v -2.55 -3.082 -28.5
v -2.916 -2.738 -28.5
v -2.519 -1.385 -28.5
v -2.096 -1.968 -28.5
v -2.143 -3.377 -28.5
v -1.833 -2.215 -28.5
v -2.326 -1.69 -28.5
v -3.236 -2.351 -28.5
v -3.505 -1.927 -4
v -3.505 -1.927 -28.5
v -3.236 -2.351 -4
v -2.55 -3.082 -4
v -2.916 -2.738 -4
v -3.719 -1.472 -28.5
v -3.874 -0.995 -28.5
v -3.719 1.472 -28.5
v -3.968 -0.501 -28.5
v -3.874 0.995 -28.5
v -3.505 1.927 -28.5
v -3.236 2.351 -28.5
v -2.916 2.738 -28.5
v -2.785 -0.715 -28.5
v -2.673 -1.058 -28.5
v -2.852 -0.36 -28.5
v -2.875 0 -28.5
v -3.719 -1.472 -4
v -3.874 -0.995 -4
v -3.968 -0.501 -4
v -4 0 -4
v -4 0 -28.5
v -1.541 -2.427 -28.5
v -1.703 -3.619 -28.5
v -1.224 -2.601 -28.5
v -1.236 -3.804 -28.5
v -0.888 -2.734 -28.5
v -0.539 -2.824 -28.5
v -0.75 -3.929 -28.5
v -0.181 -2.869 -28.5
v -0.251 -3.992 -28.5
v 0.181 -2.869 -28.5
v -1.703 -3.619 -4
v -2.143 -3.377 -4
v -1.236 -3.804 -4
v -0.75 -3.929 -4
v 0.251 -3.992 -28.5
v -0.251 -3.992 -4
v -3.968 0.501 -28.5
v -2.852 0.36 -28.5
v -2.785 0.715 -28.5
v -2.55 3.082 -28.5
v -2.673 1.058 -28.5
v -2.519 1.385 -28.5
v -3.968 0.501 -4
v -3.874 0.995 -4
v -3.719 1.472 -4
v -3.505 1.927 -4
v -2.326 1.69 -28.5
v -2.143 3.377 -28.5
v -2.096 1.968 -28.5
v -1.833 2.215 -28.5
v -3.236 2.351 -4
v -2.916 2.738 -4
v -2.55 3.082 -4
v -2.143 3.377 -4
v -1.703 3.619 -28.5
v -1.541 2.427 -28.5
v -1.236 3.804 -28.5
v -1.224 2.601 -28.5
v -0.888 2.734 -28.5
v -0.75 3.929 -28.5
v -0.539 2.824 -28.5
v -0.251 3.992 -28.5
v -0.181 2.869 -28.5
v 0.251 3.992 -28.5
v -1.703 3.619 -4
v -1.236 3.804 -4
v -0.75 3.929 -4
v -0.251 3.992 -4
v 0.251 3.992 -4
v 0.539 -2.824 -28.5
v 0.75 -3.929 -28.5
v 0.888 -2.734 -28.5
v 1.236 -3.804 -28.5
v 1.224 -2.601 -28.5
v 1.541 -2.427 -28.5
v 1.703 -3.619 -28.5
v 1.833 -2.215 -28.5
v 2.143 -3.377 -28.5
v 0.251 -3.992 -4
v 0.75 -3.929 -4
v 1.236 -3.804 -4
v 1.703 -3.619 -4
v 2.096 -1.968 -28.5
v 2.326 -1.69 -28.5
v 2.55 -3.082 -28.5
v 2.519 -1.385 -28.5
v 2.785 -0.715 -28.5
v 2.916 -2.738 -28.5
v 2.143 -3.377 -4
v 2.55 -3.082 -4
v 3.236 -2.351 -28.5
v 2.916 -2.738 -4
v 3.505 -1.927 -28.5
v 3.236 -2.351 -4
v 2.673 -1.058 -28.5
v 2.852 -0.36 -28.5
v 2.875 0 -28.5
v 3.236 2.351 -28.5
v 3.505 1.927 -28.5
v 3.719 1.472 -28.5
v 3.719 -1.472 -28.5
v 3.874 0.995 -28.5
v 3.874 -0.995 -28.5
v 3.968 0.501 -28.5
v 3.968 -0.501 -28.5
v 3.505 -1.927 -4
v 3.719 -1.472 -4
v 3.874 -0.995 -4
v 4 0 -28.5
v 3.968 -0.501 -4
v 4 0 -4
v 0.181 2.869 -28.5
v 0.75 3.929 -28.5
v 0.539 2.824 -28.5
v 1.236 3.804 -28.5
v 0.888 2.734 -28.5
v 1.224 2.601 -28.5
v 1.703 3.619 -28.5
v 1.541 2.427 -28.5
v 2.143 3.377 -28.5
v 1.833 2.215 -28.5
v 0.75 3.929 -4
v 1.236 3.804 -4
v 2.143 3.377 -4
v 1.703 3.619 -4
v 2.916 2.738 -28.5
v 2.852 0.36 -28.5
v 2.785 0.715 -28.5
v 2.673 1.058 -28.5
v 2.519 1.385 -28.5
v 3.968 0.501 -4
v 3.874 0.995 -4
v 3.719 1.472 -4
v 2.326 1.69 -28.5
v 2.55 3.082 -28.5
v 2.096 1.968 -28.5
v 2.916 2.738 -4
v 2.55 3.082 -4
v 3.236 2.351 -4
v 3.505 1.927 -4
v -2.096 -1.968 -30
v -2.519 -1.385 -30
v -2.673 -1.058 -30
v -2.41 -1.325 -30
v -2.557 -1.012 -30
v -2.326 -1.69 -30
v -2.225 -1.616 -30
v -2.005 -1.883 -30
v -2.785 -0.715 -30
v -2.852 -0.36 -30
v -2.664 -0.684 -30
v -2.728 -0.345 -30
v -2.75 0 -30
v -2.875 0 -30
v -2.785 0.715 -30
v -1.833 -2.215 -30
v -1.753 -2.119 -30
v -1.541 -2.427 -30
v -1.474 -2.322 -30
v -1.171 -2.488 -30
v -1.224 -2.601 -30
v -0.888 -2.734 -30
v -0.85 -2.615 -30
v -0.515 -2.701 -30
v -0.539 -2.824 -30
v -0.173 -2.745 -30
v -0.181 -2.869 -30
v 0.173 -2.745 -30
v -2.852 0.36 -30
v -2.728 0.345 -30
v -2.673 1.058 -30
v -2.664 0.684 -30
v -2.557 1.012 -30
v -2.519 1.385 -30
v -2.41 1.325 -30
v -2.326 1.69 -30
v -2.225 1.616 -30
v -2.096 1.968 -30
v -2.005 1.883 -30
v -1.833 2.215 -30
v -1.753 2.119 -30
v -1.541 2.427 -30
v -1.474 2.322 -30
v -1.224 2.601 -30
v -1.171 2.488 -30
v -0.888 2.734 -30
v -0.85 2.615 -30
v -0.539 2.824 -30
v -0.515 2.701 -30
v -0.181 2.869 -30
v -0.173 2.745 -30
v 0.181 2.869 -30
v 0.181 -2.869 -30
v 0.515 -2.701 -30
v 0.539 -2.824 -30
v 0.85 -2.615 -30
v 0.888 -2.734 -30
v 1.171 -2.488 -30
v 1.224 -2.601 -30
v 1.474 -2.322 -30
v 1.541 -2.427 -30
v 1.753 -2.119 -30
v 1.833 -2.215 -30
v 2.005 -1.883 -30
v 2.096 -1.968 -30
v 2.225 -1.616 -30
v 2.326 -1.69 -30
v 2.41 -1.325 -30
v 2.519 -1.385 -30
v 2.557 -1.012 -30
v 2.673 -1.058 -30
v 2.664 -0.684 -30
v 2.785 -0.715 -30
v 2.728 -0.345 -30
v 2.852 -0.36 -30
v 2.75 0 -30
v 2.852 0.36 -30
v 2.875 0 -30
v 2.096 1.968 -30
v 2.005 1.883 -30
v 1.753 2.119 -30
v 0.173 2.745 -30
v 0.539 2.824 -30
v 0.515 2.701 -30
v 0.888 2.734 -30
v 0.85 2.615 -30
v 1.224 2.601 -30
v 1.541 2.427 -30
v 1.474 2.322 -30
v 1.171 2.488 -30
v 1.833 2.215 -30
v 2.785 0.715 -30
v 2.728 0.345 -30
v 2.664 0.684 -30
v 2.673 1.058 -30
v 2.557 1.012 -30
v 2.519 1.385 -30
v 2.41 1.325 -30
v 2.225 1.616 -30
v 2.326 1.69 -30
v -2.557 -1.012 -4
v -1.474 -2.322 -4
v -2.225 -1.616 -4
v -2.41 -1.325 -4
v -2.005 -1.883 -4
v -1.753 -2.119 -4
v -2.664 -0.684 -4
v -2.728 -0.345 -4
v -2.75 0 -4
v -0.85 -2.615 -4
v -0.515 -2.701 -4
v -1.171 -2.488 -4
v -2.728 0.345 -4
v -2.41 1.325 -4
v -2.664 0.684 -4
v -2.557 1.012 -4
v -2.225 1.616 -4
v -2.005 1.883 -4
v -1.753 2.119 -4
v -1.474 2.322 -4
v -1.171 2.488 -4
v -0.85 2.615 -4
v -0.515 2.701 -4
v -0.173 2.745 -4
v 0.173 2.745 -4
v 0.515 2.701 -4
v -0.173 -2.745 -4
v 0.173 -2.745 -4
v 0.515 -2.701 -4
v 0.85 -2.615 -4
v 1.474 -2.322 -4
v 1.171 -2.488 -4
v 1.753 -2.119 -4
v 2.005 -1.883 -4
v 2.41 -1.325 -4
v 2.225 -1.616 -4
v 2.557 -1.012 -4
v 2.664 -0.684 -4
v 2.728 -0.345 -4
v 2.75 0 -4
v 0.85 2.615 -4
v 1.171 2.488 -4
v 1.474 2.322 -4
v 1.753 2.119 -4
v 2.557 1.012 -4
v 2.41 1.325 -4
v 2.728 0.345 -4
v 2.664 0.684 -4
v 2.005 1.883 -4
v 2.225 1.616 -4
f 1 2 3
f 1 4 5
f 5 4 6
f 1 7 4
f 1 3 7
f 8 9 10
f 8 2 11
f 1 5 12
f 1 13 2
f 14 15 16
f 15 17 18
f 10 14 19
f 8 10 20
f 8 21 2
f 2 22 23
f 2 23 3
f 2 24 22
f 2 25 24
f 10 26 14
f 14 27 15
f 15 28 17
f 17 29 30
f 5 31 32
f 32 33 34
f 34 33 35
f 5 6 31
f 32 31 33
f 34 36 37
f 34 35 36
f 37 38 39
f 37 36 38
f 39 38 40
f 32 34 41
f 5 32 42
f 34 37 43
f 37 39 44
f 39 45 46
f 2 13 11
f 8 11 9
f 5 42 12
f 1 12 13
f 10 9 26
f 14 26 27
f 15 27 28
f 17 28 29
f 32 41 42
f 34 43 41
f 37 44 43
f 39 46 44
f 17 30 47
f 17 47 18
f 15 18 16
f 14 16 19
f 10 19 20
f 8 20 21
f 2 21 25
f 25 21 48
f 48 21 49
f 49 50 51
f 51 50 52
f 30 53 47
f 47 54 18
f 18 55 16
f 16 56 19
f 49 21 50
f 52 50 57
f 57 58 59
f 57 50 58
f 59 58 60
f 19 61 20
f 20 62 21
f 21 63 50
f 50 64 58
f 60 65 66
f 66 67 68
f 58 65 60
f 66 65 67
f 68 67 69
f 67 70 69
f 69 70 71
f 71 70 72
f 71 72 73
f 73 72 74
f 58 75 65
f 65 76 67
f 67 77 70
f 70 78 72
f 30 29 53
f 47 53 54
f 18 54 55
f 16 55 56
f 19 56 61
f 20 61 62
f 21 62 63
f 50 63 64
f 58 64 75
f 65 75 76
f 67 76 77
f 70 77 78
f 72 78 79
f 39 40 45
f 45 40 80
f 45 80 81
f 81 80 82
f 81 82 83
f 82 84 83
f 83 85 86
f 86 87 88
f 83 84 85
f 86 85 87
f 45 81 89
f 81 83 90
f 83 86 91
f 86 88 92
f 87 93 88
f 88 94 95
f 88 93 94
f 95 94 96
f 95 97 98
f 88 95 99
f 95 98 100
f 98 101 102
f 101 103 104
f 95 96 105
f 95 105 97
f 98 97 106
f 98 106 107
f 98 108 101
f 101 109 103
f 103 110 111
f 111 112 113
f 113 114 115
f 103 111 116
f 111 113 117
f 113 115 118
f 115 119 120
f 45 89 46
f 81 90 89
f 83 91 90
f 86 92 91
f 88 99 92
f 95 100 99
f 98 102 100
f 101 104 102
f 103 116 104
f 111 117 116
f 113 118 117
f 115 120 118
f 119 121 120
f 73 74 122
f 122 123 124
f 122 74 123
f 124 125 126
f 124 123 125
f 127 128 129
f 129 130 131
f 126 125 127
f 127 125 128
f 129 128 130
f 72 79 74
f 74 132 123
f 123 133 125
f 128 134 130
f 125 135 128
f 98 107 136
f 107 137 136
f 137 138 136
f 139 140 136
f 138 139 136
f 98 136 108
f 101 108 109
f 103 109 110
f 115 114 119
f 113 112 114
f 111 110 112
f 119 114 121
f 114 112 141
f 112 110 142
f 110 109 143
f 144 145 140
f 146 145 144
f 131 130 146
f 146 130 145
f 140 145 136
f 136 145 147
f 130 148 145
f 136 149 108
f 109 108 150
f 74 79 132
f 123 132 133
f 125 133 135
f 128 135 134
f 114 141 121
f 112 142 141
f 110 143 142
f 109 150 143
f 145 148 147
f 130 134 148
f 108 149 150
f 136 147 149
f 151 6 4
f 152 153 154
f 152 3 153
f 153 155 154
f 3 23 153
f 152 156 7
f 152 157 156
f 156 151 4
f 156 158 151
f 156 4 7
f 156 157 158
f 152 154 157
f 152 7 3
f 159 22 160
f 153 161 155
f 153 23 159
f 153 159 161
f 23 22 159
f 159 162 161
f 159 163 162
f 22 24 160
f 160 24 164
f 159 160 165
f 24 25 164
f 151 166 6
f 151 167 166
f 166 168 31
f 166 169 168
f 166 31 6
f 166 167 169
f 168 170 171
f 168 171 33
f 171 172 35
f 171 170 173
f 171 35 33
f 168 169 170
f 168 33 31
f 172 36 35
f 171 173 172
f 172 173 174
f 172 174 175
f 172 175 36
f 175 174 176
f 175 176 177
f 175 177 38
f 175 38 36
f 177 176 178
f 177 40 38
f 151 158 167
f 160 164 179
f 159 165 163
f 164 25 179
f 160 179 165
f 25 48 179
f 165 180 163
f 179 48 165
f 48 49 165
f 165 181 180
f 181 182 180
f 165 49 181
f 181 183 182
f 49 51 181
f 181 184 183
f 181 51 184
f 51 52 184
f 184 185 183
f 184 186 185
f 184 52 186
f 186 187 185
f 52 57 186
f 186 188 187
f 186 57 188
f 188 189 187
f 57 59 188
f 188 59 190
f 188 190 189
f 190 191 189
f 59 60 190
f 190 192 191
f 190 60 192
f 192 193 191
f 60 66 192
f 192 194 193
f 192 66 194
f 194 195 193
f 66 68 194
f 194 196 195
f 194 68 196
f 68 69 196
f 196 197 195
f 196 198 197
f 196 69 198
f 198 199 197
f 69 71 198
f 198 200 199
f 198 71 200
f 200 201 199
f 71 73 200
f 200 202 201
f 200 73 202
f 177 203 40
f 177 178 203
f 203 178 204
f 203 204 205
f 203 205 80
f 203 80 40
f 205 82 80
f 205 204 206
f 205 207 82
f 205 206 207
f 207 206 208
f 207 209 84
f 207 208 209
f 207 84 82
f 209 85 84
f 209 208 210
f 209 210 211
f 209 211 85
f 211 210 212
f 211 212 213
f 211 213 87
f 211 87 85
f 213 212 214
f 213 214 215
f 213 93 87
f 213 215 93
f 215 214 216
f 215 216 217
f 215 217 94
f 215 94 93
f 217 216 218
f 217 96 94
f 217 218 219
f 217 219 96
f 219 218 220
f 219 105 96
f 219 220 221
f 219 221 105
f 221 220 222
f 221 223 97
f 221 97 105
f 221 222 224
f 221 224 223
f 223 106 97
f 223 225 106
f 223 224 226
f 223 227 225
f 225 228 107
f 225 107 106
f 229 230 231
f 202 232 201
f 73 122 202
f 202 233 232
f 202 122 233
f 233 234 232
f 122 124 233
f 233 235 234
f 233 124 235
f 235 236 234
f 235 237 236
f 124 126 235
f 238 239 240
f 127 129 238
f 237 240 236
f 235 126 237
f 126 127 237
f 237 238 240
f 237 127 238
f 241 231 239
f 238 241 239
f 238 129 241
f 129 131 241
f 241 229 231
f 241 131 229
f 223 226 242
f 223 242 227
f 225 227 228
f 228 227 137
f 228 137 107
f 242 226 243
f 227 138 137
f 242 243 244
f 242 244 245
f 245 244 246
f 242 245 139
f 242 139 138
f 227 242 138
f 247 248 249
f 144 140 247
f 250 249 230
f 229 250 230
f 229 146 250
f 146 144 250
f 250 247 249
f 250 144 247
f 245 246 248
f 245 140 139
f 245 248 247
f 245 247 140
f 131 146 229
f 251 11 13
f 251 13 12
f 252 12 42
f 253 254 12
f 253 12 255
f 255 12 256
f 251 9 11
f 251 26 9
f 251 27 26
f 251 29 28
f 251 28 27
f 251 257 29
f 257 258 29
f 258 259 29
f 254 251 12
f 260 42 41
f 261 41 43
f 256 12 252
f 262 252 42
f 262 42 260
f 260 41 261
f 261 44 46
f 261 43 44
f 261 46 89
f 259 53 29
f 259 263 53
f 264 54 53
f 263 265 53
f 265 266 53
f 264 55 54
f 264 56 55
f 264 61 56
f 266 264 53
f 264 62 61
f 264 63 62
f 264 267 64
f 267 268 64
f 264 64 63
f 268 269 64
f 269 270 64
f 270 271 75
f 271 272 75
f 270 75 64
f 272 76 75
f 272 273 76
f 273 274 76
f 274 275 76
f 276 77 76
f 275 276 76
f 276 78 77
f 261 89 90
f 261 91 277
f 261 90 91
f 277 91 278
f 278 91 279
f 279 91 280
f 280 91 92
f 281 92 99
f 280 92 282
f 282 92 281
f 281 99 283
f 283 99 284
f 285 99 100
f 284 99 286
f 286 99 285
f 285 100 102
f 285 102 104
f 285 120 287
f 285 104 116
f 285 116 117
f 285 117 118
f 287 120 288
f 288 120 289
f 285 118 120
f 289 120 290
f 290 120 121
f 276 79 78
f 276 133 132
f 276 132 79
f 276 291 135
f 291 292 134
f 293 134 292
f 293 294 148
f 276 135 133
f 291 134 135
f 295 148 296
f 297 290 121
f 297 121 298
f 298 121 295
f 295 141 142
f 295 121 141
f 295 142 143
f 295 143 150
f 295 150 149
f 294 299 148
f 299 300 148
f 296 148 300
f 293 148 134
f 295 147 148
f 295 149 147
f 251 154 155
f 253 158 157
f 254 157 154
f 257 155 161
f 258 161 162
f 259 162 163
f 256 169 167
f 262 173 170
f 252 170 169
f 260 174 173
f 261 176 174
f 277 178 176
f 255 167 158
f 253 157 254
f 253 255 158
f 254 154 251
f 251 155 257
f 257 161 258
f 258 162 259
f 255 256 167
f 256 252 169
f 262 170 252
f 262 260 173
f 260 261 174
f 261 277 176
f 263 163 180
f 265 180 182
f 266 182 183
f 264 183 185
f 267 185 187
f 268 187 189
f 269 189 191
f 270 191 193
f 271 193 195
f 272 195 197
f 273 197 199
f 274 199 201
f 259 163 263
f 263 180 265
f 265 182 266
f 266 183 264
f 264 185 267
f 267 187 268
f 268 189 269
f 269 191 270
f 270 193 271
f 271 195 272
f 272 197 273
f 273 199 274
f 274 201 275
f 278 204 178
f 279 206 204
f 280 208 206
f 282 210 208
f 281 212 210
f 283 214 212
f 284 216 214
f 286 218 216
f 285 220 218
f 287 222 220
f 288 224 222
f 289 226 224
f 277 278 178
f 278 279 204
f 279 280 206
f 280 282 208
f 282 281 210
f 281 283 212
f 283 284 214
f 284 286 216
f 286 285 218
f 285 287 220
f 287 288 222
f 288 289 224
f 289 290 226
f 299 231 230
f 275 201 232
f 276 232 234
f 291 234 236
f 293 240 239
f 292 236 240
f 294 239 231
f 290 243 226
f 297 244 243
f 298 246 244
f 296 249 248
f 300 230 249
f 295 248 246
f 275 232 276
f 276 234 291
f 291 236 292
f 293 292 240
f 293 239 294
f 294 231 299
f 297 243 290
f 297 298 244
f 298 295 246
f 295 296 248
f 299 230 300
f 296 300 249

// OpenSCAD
$fn = 50;

difference() {
	union() {
		translate(v = [0, 0, -28.5]) {
			cylinder(h = 31.5, r = 4.0);
		}
		#translate(v = [0, 0, -30.0]) {
			cylinder(h = 30, r = 2.875);
		}
	}
	union() {
		translate(v = [0, 0, 0]) {
			rotate(a = [0, 0, 0]) {
				difference() {
					union() {
						translate(v = [0, 0, -4]) {
							linear_extrude(height = 4) {
								polygon(points = [[4.8468, 0.0], [2.4234000000000004, 4.197451927062417], [-2.423399999999999, 4.197451927062417], [-4.8468, 5.935618106107392e-16], [-2.423400000000002, -4.197451927062416], [2.423399999999997, -4.197451927062419]]);
							}
						}
					}
					union();
				}
			}
		}
		#cylinder(h = 3, r = 6.25);
		#translate(v = [0, 0, -100.0]) {
			cylinder(h = 200, r = 2.75);
		}
	}
}
